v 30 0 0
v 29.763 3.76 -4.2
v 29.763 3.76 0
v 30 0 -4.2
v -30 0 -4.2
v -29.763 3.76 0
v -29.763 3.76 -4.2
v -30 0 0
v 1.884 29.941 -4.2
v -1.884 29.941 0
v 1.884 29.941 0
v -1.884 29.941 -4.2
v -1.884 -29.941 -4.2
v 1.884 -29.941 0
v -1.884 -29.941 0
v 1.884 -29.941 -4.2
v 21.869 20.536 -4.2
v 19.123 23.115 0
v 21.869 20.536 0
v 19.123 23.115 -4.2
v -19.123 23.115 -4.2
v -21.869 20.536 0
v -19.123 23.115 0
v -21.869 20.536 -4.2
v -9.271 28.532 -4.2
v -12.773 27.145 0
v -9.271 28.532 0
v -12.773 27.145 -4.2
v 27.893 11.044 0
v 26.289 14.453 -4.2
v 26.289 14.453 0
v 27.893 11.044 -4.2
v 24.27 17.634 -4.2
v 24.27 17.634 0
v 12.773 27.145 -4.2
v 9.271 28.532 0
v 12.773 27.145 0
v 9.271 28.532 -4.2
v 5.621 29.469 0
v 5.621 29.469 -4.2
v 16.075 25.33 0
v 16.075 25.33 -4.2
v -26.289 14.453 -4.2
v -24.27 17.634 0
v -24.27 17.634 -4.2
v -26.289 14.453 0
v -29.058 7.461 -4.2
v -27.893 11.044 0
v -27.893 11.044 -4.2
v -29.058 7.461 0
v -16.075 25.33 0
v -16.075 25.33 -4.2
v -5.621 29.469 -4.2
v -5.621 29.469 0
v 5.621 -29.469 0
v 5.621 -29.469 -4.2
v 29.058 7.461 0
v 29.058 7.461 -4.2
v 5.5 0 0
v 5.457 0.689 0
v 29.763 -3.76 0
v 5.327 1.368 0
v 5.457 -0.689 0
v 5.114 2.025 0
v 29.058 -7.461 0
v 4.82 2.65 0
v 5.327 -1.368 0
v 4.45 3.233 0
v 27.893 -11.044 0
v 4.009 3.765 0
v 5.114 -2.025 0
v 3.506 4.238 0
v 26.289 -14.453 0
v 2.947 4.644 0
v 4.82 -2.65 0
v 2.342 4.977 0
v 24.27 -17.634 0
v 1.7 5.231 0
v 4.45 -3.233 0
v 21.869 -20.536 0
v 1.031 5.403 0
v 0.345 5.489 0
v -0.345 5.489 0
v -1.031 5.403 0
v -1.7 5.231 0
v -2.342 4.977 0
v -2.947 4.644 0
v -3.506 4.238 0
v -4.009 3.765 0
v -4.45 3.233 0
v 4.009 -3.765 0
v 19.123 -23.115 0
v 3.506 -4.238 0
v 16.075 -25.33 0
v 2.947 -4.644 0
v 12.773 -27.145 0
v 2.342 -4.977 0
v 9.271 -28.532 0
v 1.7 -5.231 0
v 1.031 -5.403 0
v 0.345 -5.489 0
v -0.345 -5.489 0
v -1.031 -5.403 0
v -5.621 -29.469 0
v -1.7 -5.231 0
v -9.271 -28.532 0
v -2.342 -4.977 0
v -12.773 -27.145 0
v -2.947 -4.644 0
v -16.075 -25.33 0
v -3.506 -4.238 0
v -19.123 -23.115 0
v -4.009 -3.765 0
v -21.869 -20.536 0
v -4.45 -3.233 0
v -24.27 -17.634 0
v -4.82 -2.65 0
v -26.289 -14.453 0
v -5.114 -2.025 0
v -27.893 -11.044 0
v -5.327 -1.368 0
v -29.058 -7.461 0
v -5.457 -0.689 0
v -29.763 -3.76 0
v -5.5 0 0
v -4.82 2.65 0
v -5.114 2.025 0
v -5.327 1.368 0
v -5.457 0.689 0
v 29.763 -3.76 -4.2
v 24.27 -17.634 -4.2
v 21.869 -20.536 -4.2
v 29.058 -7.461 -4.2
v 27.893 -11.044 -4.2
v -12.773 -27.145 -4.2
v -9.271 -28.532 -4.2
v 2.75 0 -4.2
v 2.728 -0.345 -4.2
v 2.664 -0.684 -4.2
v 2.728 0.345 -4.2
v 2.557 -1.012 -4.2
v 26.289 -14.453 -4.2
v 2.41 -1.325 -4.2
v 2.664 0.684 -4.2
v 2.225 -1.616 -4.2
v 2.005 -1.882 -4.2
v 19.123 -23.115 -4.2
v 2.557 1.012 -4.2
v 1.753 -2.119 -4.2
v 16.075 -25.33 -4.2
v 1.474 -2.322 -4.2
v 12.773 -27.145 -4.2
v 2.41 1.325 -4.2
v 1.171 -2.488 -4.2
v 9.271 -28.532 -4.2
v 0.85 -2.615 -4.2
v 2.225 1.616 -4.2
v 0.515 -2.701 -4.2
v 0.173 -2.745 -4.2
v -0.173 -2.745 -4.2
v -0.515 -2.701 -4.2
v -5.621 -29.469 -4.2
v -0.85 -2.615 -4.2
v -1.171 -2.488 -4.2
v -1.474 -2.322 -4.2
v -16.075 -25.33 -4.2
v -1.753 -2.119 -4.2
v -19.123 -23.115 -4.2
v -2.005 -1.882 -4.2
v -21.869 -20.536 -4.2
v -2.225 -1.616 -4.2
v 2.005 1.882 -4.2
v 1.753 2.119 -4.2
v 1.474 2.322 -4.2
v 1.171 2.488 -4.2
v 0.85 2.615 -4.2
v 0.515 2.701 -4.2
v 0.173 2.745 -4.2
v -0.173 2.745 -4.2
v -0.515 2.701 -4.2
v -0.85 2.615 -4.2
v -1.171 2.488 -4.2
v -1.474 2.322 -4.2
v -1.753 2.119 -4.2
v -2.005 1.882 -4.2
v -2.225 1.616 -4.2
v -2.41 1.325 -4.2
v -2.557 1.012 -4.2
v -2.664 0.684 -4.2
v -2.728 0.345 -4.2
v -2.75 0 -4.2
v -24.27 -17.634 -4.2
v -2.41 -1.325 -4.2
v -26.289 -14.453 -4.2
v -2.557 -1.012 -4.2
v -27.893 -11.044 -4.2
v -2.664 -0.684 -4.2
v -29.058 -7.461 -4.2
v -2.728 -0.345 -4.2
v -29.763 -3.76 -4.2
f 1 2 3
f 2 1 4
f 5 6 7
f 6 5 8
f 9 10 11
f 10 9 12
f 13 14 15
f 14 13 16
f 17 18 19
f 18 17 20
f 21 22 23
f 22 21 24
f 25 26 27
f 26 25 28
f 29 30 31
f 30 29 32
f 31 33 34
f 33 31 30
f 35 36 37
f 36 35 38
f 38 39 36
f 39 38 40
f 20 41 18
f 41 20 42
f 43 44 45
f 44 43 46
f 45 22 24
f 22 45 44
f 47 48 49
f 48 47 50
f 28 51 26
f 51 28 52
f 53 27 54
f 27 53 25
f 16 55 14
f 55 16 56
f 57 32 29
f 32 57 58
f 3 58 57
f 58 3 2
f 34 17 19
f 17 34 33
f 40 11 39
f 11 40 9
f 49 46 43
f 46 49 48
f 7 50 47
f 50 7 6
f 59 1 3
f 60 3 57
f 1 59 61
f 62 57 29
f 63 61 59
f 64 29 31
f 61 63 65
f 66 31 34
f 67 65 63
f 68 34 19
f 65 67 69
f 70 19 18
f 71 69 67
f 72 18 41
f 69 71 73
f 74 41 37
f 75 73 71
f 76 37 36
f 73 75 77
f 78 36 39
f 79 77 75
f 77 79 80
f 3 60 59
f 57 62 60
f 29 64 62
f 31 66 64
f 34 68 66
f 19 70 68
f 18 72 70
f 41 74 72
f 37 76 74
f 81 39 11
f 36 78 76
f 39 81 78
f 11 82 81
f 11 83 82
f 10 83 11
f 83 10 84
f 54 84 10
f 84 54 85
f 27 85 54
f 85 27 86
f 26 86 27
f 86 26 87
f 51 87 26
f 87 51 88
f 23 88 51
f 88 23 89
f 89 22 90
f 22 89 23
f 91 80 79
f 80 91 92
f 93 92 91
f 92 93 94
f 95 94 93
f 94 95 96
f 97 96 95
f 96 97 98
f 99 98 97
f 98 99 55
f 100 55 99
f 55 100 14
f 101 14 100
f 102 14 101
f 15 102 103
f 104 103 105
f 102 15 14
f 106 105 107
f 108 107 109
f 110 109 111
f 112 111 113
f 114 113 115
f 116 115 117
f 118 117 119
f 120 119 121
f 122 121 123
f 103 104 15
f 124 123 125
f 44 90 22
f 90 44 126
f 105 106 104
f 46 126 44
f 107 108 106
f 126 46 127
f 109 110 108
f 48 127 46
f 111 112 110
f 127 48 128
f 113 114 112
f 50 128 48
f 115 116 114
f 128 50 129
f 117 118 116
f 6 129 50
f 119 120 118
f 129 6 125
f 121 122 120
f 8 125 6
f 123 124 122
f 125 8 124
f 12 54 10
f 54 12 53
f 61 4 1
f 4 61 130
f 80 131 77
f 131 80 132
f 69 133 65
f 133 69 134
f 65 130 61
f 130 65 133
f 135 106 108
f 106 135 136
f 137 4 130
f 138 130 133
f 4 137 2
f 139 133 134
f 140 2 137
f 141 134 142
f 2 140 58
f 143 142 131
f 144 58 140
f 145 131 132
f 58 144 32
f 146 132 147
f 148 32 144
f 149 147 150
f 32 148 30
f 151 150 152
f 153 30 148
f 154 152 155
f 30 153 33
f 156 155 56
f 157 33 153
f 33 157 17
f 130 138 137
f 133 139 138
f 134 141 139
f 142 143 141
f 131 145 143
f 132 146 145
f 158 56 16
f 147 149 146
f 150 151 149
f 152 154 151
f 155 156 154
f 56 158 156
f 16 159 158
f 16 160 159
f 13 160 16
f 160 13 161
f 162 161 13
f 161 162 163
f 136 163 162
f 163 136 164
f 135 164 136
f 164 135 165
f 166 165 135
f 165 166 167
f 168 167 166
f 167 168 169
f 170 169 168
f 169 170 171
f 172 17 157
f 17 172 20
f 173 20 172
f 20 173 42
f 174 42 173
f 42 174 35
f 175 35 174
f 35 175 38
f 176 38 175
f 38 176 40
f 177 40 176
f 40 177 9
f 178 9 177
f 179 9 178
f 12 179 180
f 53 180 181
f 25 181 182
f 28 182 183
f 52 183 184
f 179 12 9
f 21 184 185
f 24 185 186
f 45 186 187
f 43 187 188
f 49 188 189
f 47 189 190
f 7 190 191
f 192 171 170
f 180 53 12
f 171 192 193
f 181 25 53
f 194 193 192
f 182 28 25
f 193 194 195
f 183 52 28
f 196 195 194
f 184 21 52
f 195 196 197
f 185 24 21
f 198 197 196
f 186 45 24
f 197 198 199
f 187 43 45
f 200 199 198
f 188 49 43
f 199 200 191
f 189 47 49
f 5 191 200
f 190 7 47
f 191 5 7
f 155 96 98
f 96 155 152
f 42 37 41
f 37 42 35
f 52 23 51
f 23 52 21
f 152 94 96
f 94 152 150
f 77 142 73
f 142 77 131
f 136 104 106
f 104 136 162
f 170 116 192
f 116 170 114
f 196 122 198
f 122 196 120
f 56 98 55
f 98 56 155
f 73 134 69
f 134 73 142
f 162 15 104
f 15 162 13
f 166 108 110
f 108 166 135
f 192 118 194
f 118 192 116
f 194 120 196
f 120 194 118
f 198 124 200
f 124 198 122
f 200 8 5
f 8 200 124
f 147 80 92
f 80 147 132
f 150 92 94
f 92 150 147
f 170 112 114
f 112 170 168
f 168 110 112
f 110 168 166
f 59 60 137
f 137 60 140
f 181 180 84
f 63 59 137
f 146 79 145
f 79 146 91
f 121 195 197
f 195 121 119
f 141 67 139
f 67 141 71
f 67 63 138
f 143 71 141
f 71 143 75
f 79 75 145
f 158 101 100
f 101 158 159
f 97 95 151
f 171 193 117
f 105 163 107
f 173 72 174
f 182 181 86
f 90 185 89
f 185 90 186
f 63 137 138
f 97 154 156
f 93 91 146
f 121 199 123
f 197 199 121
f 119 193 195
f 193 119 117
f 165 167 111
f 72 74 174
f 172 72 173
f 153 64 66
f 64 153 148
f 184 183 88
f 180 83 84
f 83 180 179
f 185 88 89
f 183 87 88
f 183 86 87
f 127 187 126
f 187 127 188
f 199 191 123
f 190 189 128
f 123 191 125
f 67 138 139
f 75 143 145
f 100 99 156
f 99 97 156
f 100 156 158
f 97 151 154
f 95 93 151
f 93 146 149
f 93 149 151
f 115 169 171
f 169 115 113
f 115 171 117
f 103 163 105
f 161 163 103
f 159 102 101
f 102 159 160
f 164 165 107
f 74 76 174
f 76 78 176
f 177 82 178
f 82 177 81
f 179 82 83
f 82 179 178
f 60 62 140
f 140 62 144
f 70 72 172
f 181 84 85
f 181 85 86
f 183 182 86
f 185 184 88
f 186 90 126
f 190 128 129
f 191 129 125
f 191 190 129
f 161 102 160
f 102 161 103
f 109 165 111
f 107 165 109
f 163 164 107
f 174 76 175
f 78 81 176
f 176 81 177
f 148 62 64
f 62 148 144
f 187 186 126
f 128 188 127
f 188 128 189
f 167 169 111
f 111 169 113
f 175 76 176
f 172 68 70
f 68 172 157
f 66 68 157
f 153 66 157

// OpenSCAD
$fn = 50;


difference() {
	union() {
		translate(v = [0, 0, -4.2000000000]) {
			cylinder(h = 4.2000000000, r = 30.0000000000);
		}
		translate(v = [0, 0, -4.2000000000]) {
			cylinder(h = 4.2000000000, r = 2.8750000000);
		}
	}
	union() {
		translate(v = [0, 0, 0]) {
			rotate(a = [0, 0, 0]) {
				difference() {
					union() {
						#translate(v = [0, 0, -4.2000000000]) {
							cylinder(h = 4.2000000000, r = 2.2500000000);
						}
						#translate(v = [0, 0, -4.2000000000]) {
							cylinder(h = 4.2000000000, r1 = 2.7500000000, r2 = 5.5000000000);
						}
						#translate(v = [0, 0, -4.2000000000]) {
							cylinder(h = 4.2000000000, r = 2.7500000000);
						}
						#translate(v = [0, 0, -4.2000000000]) {
							cylinder(h = 4.2000000000, r = 2.2500000000);
						}
					}
					union();
				}
			}
		}
	}
}
